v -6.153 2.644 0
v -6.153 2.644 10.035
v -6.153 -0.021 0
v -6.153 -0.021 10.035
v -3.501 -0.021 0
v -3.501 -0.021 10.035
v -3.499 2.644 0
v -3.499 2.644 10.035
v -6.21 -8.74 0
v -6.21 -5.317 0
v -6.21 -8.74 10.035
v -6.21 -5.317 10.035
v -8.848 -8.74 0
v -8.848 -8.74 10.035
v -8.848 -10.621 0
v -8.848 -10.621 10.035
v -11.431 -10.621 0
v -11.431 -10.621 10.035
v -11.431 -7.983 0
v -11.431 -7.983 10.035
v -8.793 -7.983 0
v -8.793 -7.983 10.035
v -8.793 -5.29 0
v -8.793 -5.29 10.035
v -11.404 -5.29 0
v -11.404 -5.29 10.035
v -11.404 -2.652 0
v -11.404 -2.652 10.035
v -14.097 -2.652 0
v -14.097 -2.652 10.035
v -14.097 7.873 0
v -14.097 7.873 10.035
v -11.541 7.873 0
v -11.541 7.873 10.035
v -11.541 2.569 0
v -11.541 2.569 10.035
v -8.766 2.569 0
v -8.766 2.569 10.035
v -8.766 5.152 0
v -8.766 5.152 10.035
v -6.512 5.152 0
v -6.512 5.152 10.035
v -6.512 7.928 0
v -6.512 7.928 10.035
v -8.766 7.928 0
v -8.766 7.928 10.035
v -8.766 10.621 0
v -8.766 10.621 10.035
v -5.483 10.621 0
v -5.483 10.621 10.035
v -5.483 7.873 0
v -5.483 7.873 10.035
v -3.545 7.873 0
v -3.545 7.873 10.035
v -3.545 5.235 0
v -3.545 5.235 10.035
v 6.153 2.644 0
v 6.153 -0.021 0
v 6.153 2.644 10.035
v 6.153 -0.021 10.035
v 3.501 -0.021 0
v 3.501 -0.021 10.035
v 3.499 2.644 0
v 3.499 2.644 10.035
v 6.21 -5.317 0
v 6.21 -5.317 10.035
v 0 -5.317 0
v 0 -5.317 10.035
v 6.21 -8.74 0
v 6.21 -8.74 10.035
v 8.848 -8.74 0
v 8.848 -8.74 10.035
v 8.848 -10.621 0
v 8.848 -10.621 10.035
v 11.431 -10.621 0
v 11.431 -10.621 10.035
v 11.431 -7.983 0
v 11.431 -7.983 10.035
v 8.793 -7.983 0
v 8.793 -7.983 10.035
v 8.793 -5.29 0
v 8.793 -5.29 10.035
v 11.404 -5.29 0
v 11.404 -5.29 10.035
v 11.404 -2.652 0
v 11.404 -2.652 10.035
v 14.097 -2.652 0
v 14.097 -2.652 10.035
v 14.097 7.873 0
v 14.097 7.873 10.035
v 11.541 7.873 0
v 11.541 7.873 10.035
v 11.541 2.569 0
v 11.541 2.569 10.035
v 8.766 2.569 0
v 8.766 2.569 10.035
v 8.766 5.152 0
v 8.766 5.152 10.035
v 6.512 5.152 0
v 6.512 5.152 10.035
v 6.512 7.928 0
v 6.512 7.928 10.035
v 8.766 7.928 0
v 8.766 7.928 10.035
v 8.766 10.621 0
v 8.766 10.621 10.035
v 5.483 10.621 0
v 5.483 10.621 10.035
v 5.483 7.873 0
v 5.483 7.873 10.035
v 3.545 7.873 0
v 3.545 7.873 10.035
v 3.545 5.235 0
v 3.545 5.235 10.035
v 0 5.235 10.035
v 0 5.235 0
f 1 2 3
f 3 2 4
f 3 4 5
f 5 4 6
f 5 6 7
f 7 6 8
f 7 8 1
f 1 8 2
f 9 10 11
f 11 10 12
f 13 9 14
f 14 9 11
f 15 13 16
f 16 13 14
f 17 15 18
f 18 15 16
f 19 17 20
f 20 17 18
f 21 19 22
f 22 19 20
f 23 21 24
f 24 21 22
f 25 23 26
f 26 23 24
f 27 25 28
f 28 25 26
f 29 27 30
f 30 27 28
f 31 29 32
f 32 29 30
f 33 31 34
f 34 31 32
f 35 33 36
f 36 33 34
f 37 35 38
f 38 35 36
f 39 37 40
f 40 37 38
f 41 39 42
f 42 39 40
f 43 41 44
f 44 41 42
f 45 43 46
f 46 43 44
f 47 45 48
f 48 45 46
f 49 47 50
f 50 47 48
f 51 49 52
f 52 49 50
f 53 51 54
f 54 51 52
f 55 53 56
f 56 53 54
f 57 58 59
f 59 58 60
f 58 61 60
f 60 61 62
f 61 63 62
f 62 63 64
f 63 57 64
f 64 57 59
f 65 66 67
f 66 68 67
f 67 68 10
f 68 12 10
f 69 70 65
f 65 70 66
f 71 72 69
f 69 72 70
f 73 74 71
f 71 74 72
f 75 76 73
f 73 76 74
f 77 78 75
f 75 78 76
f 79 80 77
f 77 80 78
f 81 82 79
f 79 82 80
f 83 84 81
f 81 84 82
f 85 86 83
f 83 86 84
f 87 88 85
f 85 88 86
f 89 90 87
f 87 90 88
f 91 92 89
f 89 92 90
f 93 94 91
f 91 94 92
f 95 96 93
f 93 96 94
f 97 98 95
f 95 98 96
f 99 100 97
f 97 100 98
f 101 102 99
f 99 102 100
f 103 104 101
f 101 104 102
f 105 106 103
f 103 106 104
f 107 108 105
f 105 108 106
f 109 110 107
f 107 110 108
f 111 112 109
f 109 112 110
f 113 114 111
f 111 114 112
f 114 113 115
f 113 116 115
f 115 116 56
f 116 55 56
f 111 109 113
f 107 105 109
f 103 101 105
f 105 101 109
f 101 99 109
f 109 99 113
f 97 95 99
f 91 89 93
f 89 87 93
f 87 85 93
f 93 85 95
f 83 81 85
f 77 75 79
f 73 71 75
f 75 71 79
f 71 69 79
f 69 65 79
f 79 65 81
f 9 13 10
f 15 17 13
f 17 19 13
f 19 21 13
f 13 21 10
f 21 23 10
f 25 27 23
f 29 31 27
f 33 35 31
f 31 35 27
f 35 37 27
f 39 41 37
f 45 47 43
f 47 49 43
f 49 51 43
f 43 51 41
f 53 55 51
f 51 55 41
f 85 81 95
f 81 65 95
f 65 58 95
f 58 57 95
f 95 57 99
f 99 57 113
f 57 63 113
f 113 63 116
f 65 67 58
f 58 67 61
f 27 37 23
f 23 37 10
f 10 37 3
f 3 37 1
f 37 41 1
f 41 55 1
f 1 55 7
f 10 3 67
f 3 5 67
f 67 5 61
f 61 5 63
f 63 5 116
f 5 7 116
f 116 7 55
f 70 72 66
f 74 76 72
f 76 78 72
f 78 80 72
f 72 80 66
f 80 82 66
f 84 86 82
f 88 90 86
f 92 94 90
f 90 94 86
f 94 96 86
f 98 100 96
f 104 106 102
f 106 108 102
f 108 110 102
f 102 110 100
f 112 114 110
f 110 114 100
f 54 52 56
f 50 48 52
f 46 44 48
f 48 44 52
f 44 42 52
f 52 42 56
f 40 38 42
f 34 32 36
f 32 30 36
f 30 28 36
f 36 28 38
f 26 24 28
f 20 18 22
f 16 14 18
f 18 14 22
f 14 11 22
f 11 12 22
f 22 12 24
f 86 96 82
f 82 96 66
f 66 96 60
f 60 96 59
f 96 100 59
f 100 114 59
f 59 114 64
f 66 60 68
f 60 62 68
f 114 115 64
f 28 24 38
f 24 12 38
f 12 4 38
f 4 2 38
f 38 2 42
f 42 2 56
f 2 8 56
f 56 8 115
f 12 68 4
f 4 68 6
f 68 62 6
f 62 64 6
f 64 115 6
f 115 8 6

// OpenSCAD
module invaders_v2_2b()
{
	polyhedron(
		points=[
			[-6.153152, 2.644155, 1.037121e-05],
			[-6.153152, 2.644155, 10.03545],
			[-6.153152, -0.02136326, 1.037121e-05],
			[-6.153152, -0.02136326, 1.037121e-05],
			[-6.153152, 2.644155, 10.03545],
			[-6.153152, -0.02136326, 10.03545],
			[-6.153152, -0.02136326, 1.037121e-05],
			[-6.153152, -0.02136326, 10.03545],
			[-3.500525, -0.02136326, 1.037121e-05],
			[-3.500525, -0.02136326, 1.037121e-05],
			[-6.153152, -0.02136326, 10.03545],
			[-3.500525, -0.02136326, 10.03545],
			[-3.500525, -0.02136326, 1.037121e-05],
			[-3.500525, -0.02136326, 10.03545],
			[-3.499426, 2.644155, 0.0],
			[-3.499426, 2.644155, 0.0],
			[-3.500525, -0.02136326, 10.03545],
			[-3.499426, 2.644155, 10.03545],
			[-3.499426, 2.644155, 0.0],
			[-3.499426, 2.644155, 10.03545],
			[-6.153152, 2.644155, 1.037121e-05],
			[-6.153152, 2.644155, 1.037121e-05],
			[-3.499426, 2.644155, 10.03545],
			[-6.153152, 2.644155, 10.03545],
			[-6.210196, -8.740329, 5.125999e-06],
			[-6.210196, -5.317132, 5.125999e-06],
			[-6.210196, -8.740329, 10.03545],
			[-6.210196, -8.740329, 10.03545],
			[-6.210196, -5.317132, 5.125999e-06],
			[-6.210196, -5.317132, 10.03545],
			[-8.848155, -8.740329, 5.125999e-06],
			[-6.210196, -8.740329, 5.125999e-06],
			[-8.848155, -8.740329, 10.03545],
			[-8.848155, -8.740329, 10.03545],
			[-6.210196, -8.740329, 5.125999e-06],
			[-6.210196, -8.740329, 10.03545],
			[-8.848155, -10.62053, 5.125999e-06],
			[-8.848155, -8.740329, 5.125999e-06],
			[-8.848155, -10.62053, 10.03545],
			[-8.848155, -10.62053, 10.03545],
			[-8.848155, -8.740329, 5.125999e-06],
			[-8.848155, -8.740329, 10.03545],
			[-11.43115, -10.62053, 5.125999e-06],
			[-8.848155, -10.62053, 5.125999e-06],
			[-11.43115, -10.62053, 10.03545],
			[-11.43115, -10.62053, 10.03545],
			[-8.848155, -10.62053, 5.125999e-06],
			[-8.848155, -10.62053, 10.03545],
			[-11.43115, -7.982572, 5.125999e-06],
			[-11.43115, -10.62053, 5.125999e-06],
			[-11.43115, -7.982572, 10.03545],
			[-11.43115, -7.982572, 10.03545],
			[-11.43115, -10.62053, 5.125999e-06],
			[-11.43115, -10.62053, 10.03545],
			[-8.793198, -7.982572, 5.125999e-06],
			[-11.43115, -7.982572, 5.125999e-06],
			[-8.793198, -7.982572, 10.03545],
			[-8.793198, -7.982572, 10.03545],
			[-11.43115, -7.982572, 5.125999e-06],
			[-11.43115, -7.982572, 10.03545],
			[-8.793198, -5.289653, 5.125999e-06],
			[-8.793198, -7.982572, 5.125999e-06],
			[-8.793198, -5.289653, 10.03545],
			[-8.793198, -5.289653, 10.03545],
			[-8.793198, -7.982572, 5.125999e-06],
			[-8.793198, -7.982572, 10.03545],
			[-11.40368, -5.289653, 5.125999e-06],
			[-8.793198, -5.289653, 5.125999e-06],
			[-11.40368, -5.289653, 10.03545],
			[-11.40368, -5.289653, 10.03545],
			[-8.793198, -5.289653, 5.125999e-06],
			[-8.793198, -5.289653, 10.03545],
			[-11.40368, -2.651692, 5.125999e-06],
			[-11.40368, -5.289653, 5.125999e-06],
			[-11.40368, -2.651692, 10.03545],
			[-11.40368, -2.651692, 10.03545],
			[-11.40368, -5.289653, 5.125999e-06],
			[-11.40368, -5.289653, 10.03545],
			[-14.09659, -2.651692, 5.125999e-06],
			[-11.40368, -2.651692, 5.125999e-06],
			[-14.09659, -2.651692, 10.03545],
			[-14.09659, -2.651692, 10.03545],
			[-11.40368, -2.651692, 5.125999e-06],
			[-11.40368, -2.651692, 10.03545],
			[-14.09659, 7.872661, 5.125999e-06],
			[-14.09659, -2.651692, 5.125999e-06],
			[-14.09659, 7.872661, 10.03545],
			[-14.09659, 7.872661, 10.03545],
			[-14.09659, -2.651692, 5.125999e-06],
			[-14.09659, -2.651692, 10.03545],
			[-11.54107, 7.872661, 5.125999e-06],
			[-14.09659, 7.872661, 5.125999e-06],
			[-11.54107, 7.872661, 10.03545],
			[-11.54107, 7.872661, 10.03545],
			[-14.09659, 7.872661, 5.125999e-06],
			[-14.09659, 7.872661, 10.03545],
			[-11.54107, 2.569268, 5.125999e-06],
			[-11.54107, 7.872661, 5.125999e-06],
			[-11.54107, 2.569268, 10.03545],
			[-11.54107, 2.569268, 10.03545],
			[-11.54107, 7.872661, 5.125999e-06],
			[-11.54107, 7.872661, 10.03545],
			[-8.765718, 2.569268, 5.125999e-06],
			[-11.54107, 2.569268, 5.125999e-06],
			[-8.765718, 2.569268, 10.03545],
			[-8.765718, 2.569268, 10.03545],
			[-11.54107, 2.569268, 5.125999e-06],
			[-11.54107, 2.569268, 10.03545],
			[-8.765718, 5.152268, 5.125999e-06],
			[-8.765718, 2.569268, 5.125999e-06],
			[-8.765718, 5.152268, 10.03545],
			[-8.765718, 5.152268, 10.03545],
			[-8.765718, 2.569268, 5.125999e-06],
			[-8.765718, 2.569268, 10.03545],
			[-6.512463, 5.152268, 5.125999e-06],
			[-8.765718, 5.152268, 5.125999e-06],
			[-6.512463, 5.152268, 10.03545],
			[-6.512463, 5.152268, 10.03545],
			[-8.765718, 5.152268, 5.125999e-06],
			[-8.765718, 5.152268, 10.03545],
			[-6.512463, 7.927623, 5.125999e-06],
			[-6.512463, 5.152268, 5.125999e-06],
			[-6.512463, 7.927623, 10.03545],
			[-6.512463, 7.927623, 10.03545],
			[-6.512463, 5.152268, 5.125999e-06],
			[-6.512463, 5.152268, 10.03545],
			[-8.765718, 7.927623, 5.125999e-06],
			[-6.512463, 7.927623, 5.125999e-06],
			[-8.765718, 7.927623, 10.03545],
			[-8.765718, 7.927623, 10.03545],
			[-6.512463, 7.927623, 5.125999e-06],
			[-6.512463, 7.927623, 10.03545],
			[-8.765718, 10.62053, 5.125999e-06],
			[-8.765718, 7.927623, 5.125999e-06],
			[-8.765718, 10.62053, 10.03545],
			[-8.765718, 10.62053, 10.03545],
			[-8.765718, 7.927623, 5.125999e-06],
			[-8.765718, 7.927623, 10.03545],
			[-5.482523, 10.62053, 5.125999e-06],
			[-8.765718, 10.62053, 5.125999e-06],
			[-5.482523, 10.62053, 10.03545],
			[-5.482523, 10.62053, 10.03545],
			[-8.765718, 10.62053, 5.125999e-06],
			[-8.765718, 10.62053, 10.03545],
			[-5.482523, 7.872661, 5.125999e-06],
			[-5.482523, 10.62053, 5.125999e-06],
			[-5.482523, 7.872661, 10.03545],
			[-5.482523, 7.872661, 10.03545],
			[-5.482523, 10.62053, 5.125999e-06],
			[-5.482523, 10.62053, 10.03545],
			[-3.544758, 7.872661, 5.125999e-06],
			[-5.482523, 7.872661, 5.125999e-06],
			[-3.544758, 7.872661, 10.03545],
			[-3.544758, 7.872661, 10.03545],
			[-5.482523, 7.872661, 5.125999e-06],
			[-5.482523, 7.872661, 10.03545],
			[-3.544758, 5.234704, 5.125999e-06],
			[-3.544758, 7.872661, 5.125999e-06],
			[-3.544758, 5.234704, 10.03545],
			[-3.544758, 5.234704, 10.03545],
			[-3.544758, 7.872661, 5.125999e-06],
			[-3.544758, 7.872661, 10.03545],
			[6.15315, 2.644155, 1.549721e-05],
			[6.15315, -0.02136326, 1.549721e-05],
			[6.15315, 2.644155, 10.03546],
			[6.15315, 2.644155, 10.03546],
			[6.15315, -0.02136326, 1.549721e-05],
			[6.15315, -0.02136326, 10.03546],
			[6.15315, -0.02136326, 1.549721e-05],
			[3.500523, -0.02136326, 1.549721e-05],
			[6.15315, -0.02136326, 10.03546],
			[6.15315, -0.02136326, 10.03546],
			[3.500523, -0.02136326, 1.549721e-05],
			[3.500523, -0.02136326, 10.03545],
			[3.500523, -0.02136326, 1.549721e-05],
			[3.499424, 2.644155, 5.125999e-06],
			[3.500523, -0.02136326, 10.03545],
			[3.500523, -0.02136326, 10.03545],
			[3.499424, 2.644155, 5.125999e-06],
			[3.499424, 2.644155, 10.03545],
			[3.499424, 2.644155, 5.125999e-06],
			[6.15315, 2.644155, 1.549721e-05],
			[3.499424, 2.644155, 10.03545],
			[3.499424, 2.644155, 10.03545],
			[6.15315, 2.644155, 1.549721e-05],
			[6.15315, 2.644155, 10.03546],
			[6.210193, -5.317132, 1.037121e-05],
			[6.210193, -5.317132, 10.03546],
			[-1.907349e-06, -5.317132, 5.125999e-06],
			[6.210193, -5.317132, 10.03546],
			[-1.907349e-06, -5.317132, 10.03545],
			[-1.907349e-06, -5.317132, 5.125999e-06],
			[-1.907349e-06, -5.317132, 5.125999e-06],
			[-1.907349e-06, -5.317132, 10.03545],
			[-6.210196, -5.317132, 5.125999e-06],
			[-1.907349e-06, -5.317132, 10.03545],
			[-6.210196, -5.317132, 10.03545],
			[-6.210196, -5.317132, 5.125999e-06],
			[6.210193, -8.740329, 1.037121e-05],
			[6.210193, -8.740329, 10.03546],
			[6.210193, -5.317132, 1.037121e-05],
			[6.210193, -5.317132, 1.037121e-05],
			[6.210193, -8.740329, 10.03546],
			[6.210193, -5.317132, 10.03546],
			[8.848153, -8.740329, 1.037121e-05],
			[8.848153, -8.740329, 10.03546],
			[6.210193, -8.740329, 1.037121e-05],
			[6.210193, -8.740329, 1.037121e-05],
			[8.848153, -8.740329, 10.03546],
			[6.210193, -8.740329, 10.03546],
			[8.848153, -10.62053, 1.037121e-05],
			[8.848153, -10.62053, 10.03546],
			[8.848153, -8.740329, 1.037121e-05],
			[8.848153, -8.740329, 1.037121e-05],
			[8.848153, -10.62053, 10.03546],
			[8.848153, -8.740329, 10.03546],
			[11.43115, -10.62053, 1.037121e-05],
			[11.43115, -10.62053, 10.03546],
			[8.848153, -10.62053, 1.037121e-05],
			[8.848153, -10.62053, 1.037121e-05],
			[11.43115, -10.62053, 10.03546],
			[8.848153, -10.62053, 10.03546],
			[11.43115, -7.982572, 1.037121e-05],
			[11.43115, -7.982572, 10.03546],
			[11.43115, -10.62053, 1.037121e-05],
			[11.43115, -10.62053, 1.037121e-05],
			[11.43115, -7.982572, 10.03546],
			[11.43115, -10.62053, 10.03546],
			[8.793196, -7.982572, 1.037121e-05],
			[8.793196, -7.982572, 10.03546],
			[11.43115, -7.982572, 1.037121e-05],
			[11.43115, -7.982572, 1.037121e-05],
			[8.793196, -7.982572, 10.03546],
			[11.43115, -7.982572, 10.03546],
			[8.793196, -5.289653, 1.037121e-05],
			[8.793196, -5.289653, 10.03546],
			[8.793196, -7.982572, 1.037121e-05],
			[8.793196, -7.982572, 1.037121e-05],
			[8.793196, -5.289653, 10.03546],
			[8.793196, -7.982572, 10.03546],
			[11.40367, -5.289653, 1.037121e-05],
			[11.40367, -5.289653, 10.03546],
			[8.793196, -5.289653, 1.037121e-05],
			[8.793196, -5.289653, 1.037121e-05],
			[11.40367, -5.289653, 10.03546],
			[8.793196, -5.289653, 10.03546],
			[11.40367, -2.651692, 1.037121e-05],
			[11.40367, -2.651692, 10.03546],
			[11.40367, -5.289653, 1.037121e-05],
			[11.40367, -5.289653, 1.037121e-05],
			[11.40367, -2.651692, 10.03546],
			[11.40367, -5.289653, 10.03546],
			[14.09659, -2.651692, 1.037121e-05],
			[14.09659, -2.651692, 10.03546],
			[11.40367, -2.651692, 1.037121e-05],
			[11.40367, -2.651692, 1.037121e-05],
			[14.09659, -2.651692, 10.03546],
			[11.40367, -2.651692, 10.03546],
			[14.09659, 7.872661, 1.037121e-05],
			[14.09659, 7.872661, 10.03546],
			[14.09659, -2.651692, 1.037121e-05],
			[14.09659, -2.651692, 1.037121e-05],
			[14.09659, 7.872661, 10.03546],
			[14.09659, -2.651692, 10.03546],
			[11.54107, 7.872661, 1.037121e-05],
			[11.54107, 7.872661, 10.03546],
			[14.09659, 7.872661, 1.037121e-05],
			[14.09659, 7.872661, 1.037121e-05],
			[11.54107, 7.872661, 10.03546],
			[14.09659, 7.872661, 10.03546],
			[11.54107, 2.569268, 1.037121e-05],
			[11.54107, 2.569268, 10.03546],
			[11.54107, 7.872661, 1.037121e-05],
			[11.54107, 7.872661, 1.037121e-05],
			[11.54107, 2.569268, 10.03546],
			[11.54107, 7.872661, 10.03546],
			[8.765716, 2.569268, 1.037121e-05],
			[8.765716, 2.569268, 10.03546],
			[11.54107, 2.569268, 1.037121e-05],
			[11.54107, 2.569268, 1.037121e-05],
			[8.765716, 2.569268, 10.03546],
			[11.54107, 2.569268, 10.03546],
			[8.765716, 5.152268, 1.037121e-05],
			[8.765716, 5.152268, 10.03546],
			[8.765716, 2.569268, 1.037121e-05],
			[8.765716, 2.569268, 1.037121e-05],
			[8.765716, 5.152268, 10.03546],
			[8.765716, 2.569268, 10.03546],
			[6.512461, 5.152268, 1.037121e-05],
			[6.512461, 5.152268, 10.03546],
			[8.765716, 5.152268, 1.037121e-05],
			[8.765716, 5.152268, 1.037121e-05],
			[6.512461, 5.152268, 10.03546],
			[8.765716, 5.152268, 10.03546],
			[6.512461, 7.927623, 1.037121e-05],
			[6.512461, 7.927623, 10.03546],
			[6.512461, 5.152268, 1.037121e-05],
			[6.512461, 5.152268, 1.037121e-05],
			[6.512461, 7.927623, 10.03546],
			[6.512461, 5.152268, 10.03546],
			[8.765716, 7.927623, 1.037121e-05],
			[8.765716, 7.927623, 10.03546],
			[6.512461, 7.927623, 1.037121e-05],
			[6.512461, 7.927623, 1.037121e-05],
			[8.765716, 7.927623, 10.03546],
			[6.512461, 7.927623, 10.03546],
			[8.765716, 10.62053, 1.037121e-05],
			[8.765716, 10.62053, 10.03546],
			[8.765716, 7.927623, 1.037121e-05],
			[8.765716, 7.927623, 1.037121e-05],
			[8.765716, 10.62053, 10.03546],
			[8.765716, 7.927623, 10.03546],
			[5.482523, 10.62053, 1.037121e-05],
			[5.482523, 10.62053, 10.03546],
			[8.765716, 10.62053, 1.037121e-05],
			[8.765716, 10.62053, 1.037121e-05],
			[5.482523, 10.62053, 10.03546],
			[8.765716, 10.62053, 10.03546],
			[5.482523, 7.872661, 1.037121e-05],
			[5.482523, 7.872661, 10.03546],
			[5.482523, 10.62053, 1.037121e-05],
			[5.482523, 10.62053, 1.037121e-05],
			[5.482523, 7.872661, 10.03546],
			[5.482523, 10.62053, 10.03546],
			[3.544758, 7.872661, 1.037121e-05],
			[3.544758, 7.872661, 10.03545],
			[5.482523, 7.872661, 1.037121e-05],
			[5.482523, 7.872661, 1.037121e-05],
			[3.544758, 7.872661, 10.03545],
			[5.482523, 7.872661, 10.03546],
			[3.544758, 5.234704, 1.037121e-05],
			[3.544758, 5.234704, 10.03545],
			[3.544758, 7.872661, 1.037121e-05],
			[3.544758, 7.872661, 1.037121e-05],
			[3.544758, 5.234704, 10.03545],
			[3.544758, 7.872661, 10.03545],
			[3.544758, 5.234704, 10.03545],
			[3.544758, 5.234704, 1.037121e-05],
			[-1.907349e-06, 5.234704, 10.03545],
			[3.544758, 5.234704, 1.037121e-05],
			[-1.907349e-06, 5.234704, 5.125999e-06],
			[-1.907349e-06, 5.234704, 10.03545],
			[-1.907349e-06, 5.234704, 10.03545],
			[-1.907349e-06, 5.234704, 5.125999e-06],
			[-3.544758, 5.234704, 10.03545],
			[-1.907349e-06, 5.234704, 5.125999e-06],
			[-3.544758, 5.234704, 5.125999e-06],
			[-3.544758, 5.234704, 10.03545],
			[3.544758, 7.872661, 1.037121e-05],
			[5.482523, 7.872661, 1.037121e-05],
			[3.544758, 5.234704, 1.037121e-05],
			[5.482523, 10.62053, 1.037121e-05],
			[8.765716, 10.62053, 1.037121e-05],
			[5.482523, 7.872661, 1.037121e-05],
			[8.765716, 7.927623, 1.037121e-05],
			[6.512461, 7.927623, 1.037121e-05],
			[8.765716, 10.62053, 1.037121e-05],
			[8.765716, 10.62053, 1.037121e-05],
			[6.512461, 7.927623, 1.037121e-05],
			[5.482523, 7.872661, 1.037121e-05],
			[6.512461, 7.927623, 1.037121e-05],
			[6.512461, 5.152268, 1.037121e-05],
			[5.482523, 7.872661, 1.037121e-05],
			[5.482523, 7.872661, 1.037121e-05],
			[6.512461, 5.152268, 1.037121e-05],
			[3.544758, 5.234704, 1.037121e-05],
			[8.765716, 5.152268, 1.037121e-05],
			[8.765716, 2.569268, 1.037121e-05],
			[6.512461, 5.152268, 1.037121e-05],
			[11.54107, 7.872661, 1.037121e-05],
			[14.09659, 7.872661, 1.037121e-05],
			[11.54107, 2.569268, 1.037121e-05],
			[14.09659, 7.872661, 1.037121e-05],
			[14.09659, -2.651692, 1.037121e-05],
			[11.54107, 2.569268, 1.037121e-05],
			[14.09659, -2.651692, 1.037121e-05],
			[11.40367, -2.651692, 1.037121e-05],
			[11.54107, 2.569268, 1.037121e-05],
			[11.54107, 2.569268, 1.037121e-05],
			[11.40367, -2.651692, 1.037121e-05],
			[8.765716, 2.569268, 1.037121e-05],
			[11.40367, -5.289653, 1.037121e-05],
			[8.793196, -5.289653, 1.037121e-05],
			[11.40367, -2.651692, 1.037121e-05],
			[11.43115, -7.982572, 1.037121e-05],
			[11.43115, -10.62053, 1.037121e-05],
			[8.793196, -7.982572, 1.037121e-05],
			[8.848153, -10.62053, 1.037121e-05],
			[8.848153, -8.740329, 1.037121e-05],
			[11.43115, -10.62053, 1.037121e-05],
			[11.43115, -10.62053, 1.037121e-05],
			[8.848153, -8.740329, 1.037121e-05],
			[8.793196, -7.982572, 1.037121e-05],
			[8.848153, -8.740329, 1.037121e-05],
			[6.210193, -8.740329, 1.037121e-05],
			[8.793196, -7.982572, 1.037121e-05],
			[6.210193, -8.740329, 1.037121e-05],
			[6.210193, -5.317132, 1.037121e-05],
			[8.793196, -7.982572, 1.037121e-05],
			[8.793196, -7.982572, 1.037121e-05],
			[6.210193, -5.317132, 1.037121e-05],
			[8.793196, -5.289653, 1.037121e-05],
			[-6.210196, -8.740329, 5.125999e-06],
			[-8.848155, -8.740329, 5.125999e-06],
			[-6.210196, -5.317132, 5.125999e-06],
			[-8.848155, -10.62053, 5.125999e-06],
			[-11.43115, -10.62053, 5.125999e-06],
			[-8.848155, -8.740329, 5.125999e-06],
			[-11.43115, -10.62053, 5.125999e-06],
			[-11.43115, -7.982572, 5.125999e-06],
			[-8.848155, -8.740329, 5.125999e-06],
			[-11.43115, -7.982572, 5.125999e-06],
			[-8.793198, -7.982572, 5.125999e-06],
			[-8.848155, -8.740329, 5.125999e-06],
			[-8.848155, -8.740329, 5.125999e-06],
			[-8.793198, -7.982572, 5.125999e-06],
			[-6.210196, -5.317132, 5.125999e-06],
			[-8.793198, -7.982572, 5.125999e-06],
			[-8.793198, -5.289653, 5.125999e-06],
			[-6.210196, -5.317132, 5.125999e-06],
			[-11.40368, -5.289653, 5.125999e-06],
			[-11.40368, -2.651692, 5.125999e-06],
			[-8.793198, -5.289653, 5.125999e-06],
			[-14.09659, -2.651692, 5.125999e-06],
			[-14.09659, 7.872661, 5.125999e-06],
			[-11.40368, -2.651692, 5.125999e-06],
			[-11.54107, 7.872661, 5.125999e-06],
			[-11.54107, 2.569268, 5.125999e-06],
			[-14.09659, 7.872661, 5.125999e-06],
			[-14.09659, 7.872661, 5.125999e-06],
			[-11.54107, 2.569268, 5.125999e-06],
			[-11.40368, -2.651692, 5.125999e-06],
			[-11.54107, 2.569268, 5.125999e-06],
			[-8.765718, 2.569268, 5.125999e-06],
			[-11.40368, -2.651692, 5.125999e-06],
			[-8.765718, 5.152268, 5.125999e-06],
			[-6.512463, 5.152268, 5.125999e-06],
			[-8.765718, 2.569268, 5.125999e-06],
			[-8.765718, 7.927623, 5.125999e-06],
			[-8.765718, 10.62053, 5.125999e-06],
			[-6.512463, 7.927623, 5.125999e-06],
			[-8.765718, 10.62053, 5.125999e-06],
			[-5.482523, 10.62053, 5.125999e-06],
			[-6.512463, 7.927623, 5.125999e-06],
			[-5.482523, 10.62053, 5.125999e-06],
			[-5.482523, 7.872661, 5.125999e-06],
			[-6.512463, 7.927623, 5.125999e-06],
			[-6.512463, 7.927623, 5.125999e-06],
			[-5.482523, 7.872661, 5.125999e-06],
			[-6.512463, 5.152268, 5.125999e-06],
			[-3.544758, 7.872661, 5.125999e-06],
			[-3.544758, 5.234704, 5.125999e-06],
			[-5.482523, 7.872661, 5.125999e-06],
			[-5.482523, 7.872661, 5.125999e-06],
			[-3.544758, 5.234704, 5.125999e-06],
			[-6.512463, 5.152268, 5.125999e-06],
			[11.40367, -2.651692, 1.037121e-05],
			[8.793196, -5.289653, 1.037121e-05],
			[8.765716, 2.569268, 1.037121e-05],
			[8.793196, -5.289653, 1.037121e-05],
			[6.210193, -5.317132, 1.037121e-05],
			[8.765716, 2.569268, 1.037121e-05],
			[6.210193, -5.317132, 1.037121e-05],
			[6.15315, -0.02136326, 1.549721e-05],
			[8.765716, 2.569268, 1.037121e-05],
			[6.15315, -0.02136326, 1.549721e-05],
			[6.15315, 2.644155, 1.549721e-05],
			[8.765716, 2.569268, 1.037121e-05],
			[8.765716, 2.569268, 1.037121e-05],
			[6.15315, 2.644155, 1.549721e-05],
			[6.512461, 5.152268, 1.037121e-05],
			[6.512461, 5.152268, 1.037121e-05],
			[6.15315, 2.644155, 1.549721e-05],
			[3.544758, 5.234704, 1.037121e-05],
			[6.15315, 2.644155, 1.549721e-05],
			[3.499424, 2.644155, 5.125999e-06],
			[3.544758, 5.234704, 1.037121e-05],
			[3.544758, 5.234704, 1.037121e-05],
			[3.499424, 2.644155, 5.125999e-06],
			[-1.907349e-06, 5.234704, 5.125999e-06],
			[6.210193, -5.317132, 1.037121e-05],
			[-1.907349e-06, -5.317132, 5.125999e-06],
			[6.15315, -0.02136326, 1.549721e-05],
			[6.15315, -0.02136326, 1.549721e-05],
			[-1.907349e-06, -5.317132, 5.125999e-06],
			[3.500523, -0.02136326, 1.549721e-05],
			[-11.40368, -2.651692, 5.125999e-06],
			[-8.765718, 2.569268, 5.125999e-06],
			[-8.793198, -5.289653, 5.125999e-06],
			[-8.793198, -5.289653, 5.125999e-06],
			[-8.765718, 2.569268, 5.125999e-06],
			[-6.210196, -5.317132, 5.125999e-06],
			[-6.210196, -5.317132, 5.125999e-06],
			[-8.765718, 2.569268, 5.125999e-06],
			[-6.153152, -0.02136326, 1.037121e-05],
			[-6.153152, -0.02136326, 1.037121e-05],
			[-8.765718, 2.569268, 5.125999e-06],
			[-6.153152, 2.644155, 1.037121e-05],
			[-8.765718, 2.569268, 5.125999e-06],
			[-6.512463, 5.152268, 5.125999e-06],
			[-6.153152, 2.644155, 1.037121e-05],
			[-6.512463, 5.152268, 5.125999e-06],
			[-3.544758, 5.234704, 5.125999e-06],
			[-6.153152, 2.644155, 1.037121e-05],
			[-6.153152, 2.644155, 1.037121e-05],
			[-3.544758, 5.234704, 5.125999e-06],
			[-3.499426, 2.644155, 0.0],
			[-6.210196, -5.317132, 5.125999e-06],
			[-6.153152, -0.02136326, 1.037121e-05],
			[-1.907349e-06, -5.317132, 5.125999e-06],
			[-6.153152, -0.02136326, 1.037121e-05],
			[-3.500525, -0.02136326, 1.037121e-05],
			[-1.907349e-06, -5.317132, 5.125999e-06],
			[-1.907349e-06, -5.317132, 5.125999e-06],
			[-3.500525, -0.02136326, 1.037121e-05],
			[3.500523, -0.02136326, 1.549721e-05],
			[3.500523, -0.02136326, 1.549721e-05],
			[-3.500525, -0.02136326, 1.037121e-05],
			[3.499424, 2.644155, 5.125999e-06],
			[3.499424, 2.644155, 5.125999e-06],
			[-3.500525, -0.02136326, 1.037121e-05],
			[-1.907349e-06, 5.234704, 5.125999e-06],
			[-3.500525, -0.02136326, 1.037121e-05],
			[-3.499426, 2.644155, 0.0],
			[-1.907349e-06, 5.234704, 5.125999e-06],
			[-1.907349e-06, 5.234704, 5.125999e-06],
			[-3.499426, 2.644155, 0.0],
			[-3.544758, 5.234704, 5.125999e-06],
			[6.210193, -8.740329, 10.03546],
			[8.848153, -8.740329, 10.03546],
			[6.210193, -5.317132, 10.03546],
			[8.848153, -10.62053, 10.03546],
			[11.43115, -10.62053, 10.03546],
			[8.848153, -8.740329, 10.03546],
			[11.43115, -10.62053, 10.03546],
			[11.43115, -7.982572, 10.03546],
			[8.848153, -8.740329, 10.03546],
			[11.43115, -7.982572, 10.03546],
			[8.793196, -7.982572, 10.03546],
			[8.848153, -8.740329, 10.03546],
			[8.848153, -8.740329, 10.03546],
			[8.793196, -7.982572, 10.03546],
			[6.210193, -5.317132, 10.03546],
			[8.793196, -7.982572, 10.03546],
			[8.793196, -5.289653, 10.03546],
			[6.210193, -5.317132, 10.03546],
			[11.40367, -5.289653, 10.03546],
			[11.40367, -2.651692, 10.03546],
			[8.793196, -5.289653, 10.03546],
			[14.09659, -2.651692, 10.03546],
			[14.09659, 7.872661, 10.03546],
			[11.40367, -2.651692, 10.03546],
			[11.54107, 7.872661, 10.03546],
			[11.54107, 2.569268, 10.03546],
			[14.09659, 7.872661, 10.03546],
			[14.09659, 7.872661, 10.03546],
			[11.54107, 2.569268, 10.03546],
			[11.40367, -2.651692, 10.03546],
			[11.54107, 2.569268, 10.03546],
			[8.765716, 2.569268, 10.03546],
			[11.40367, -2.651692, 10.03546],
			[8.765716, 5.152268, 10.03546],
			[6.512461, 5.152268, 10.03546],
			[8.765716, 2.569268, 10.03546],
			[8.765716, 7.927623, 10.03546],
			[8.765716, 10.62053, 10.03546],
			[6.512461, 7.927623, 10.03546],
			[8.765716, 10.62053, 10.03546],
			[5.482523, 10.62053, 10.03546],
			[6.512461, 7.927623, 10.03546],
			[5.482523, 10.62053, 10.03546],
			[5.482523, 7.872661, 10.03546],
			[6.512461, 7.927623, 10.03546],
			[6.512461, 7.927623, 10.03546],
			[5.482523, 7.872661, 10.03546],
			[6.512461, 5.152268, 10.03546],
			[3.544758, 7.872661, 10.03545],
			[3.544758, 5.234704, 10.03545],
			[5.482523, 7.872661, 10.03546],
			[5.482523, 7.872661, 10.03546],
			[3.544758, 5.234704, 10.03545],
			[6.512461, 5.152268, 10.03546],
			[-3.544758, 7.872661, 10.03545],
			[-5.482523, 7.872661, 10.03545],
			[-3.544758, 5.234704, 10.03545],
			[-5.482523, 10.62053, 10.03545],
			[-8.765718, 10.62053, 10.03545],
			[-5.482523, 7.872661, 10.03545],
			[-8.765718, 7.927623, 10.03545],
			[-6.512463, 7.927623, 10.03545],
			[-8.765718, 10.62053, 10.03545],
			[-8.765718, 10.62053, 10.03545],
			[-6.512463, 7.927623, 10.03545],
			[-5.482523, 7.872661, 10.03545],
			[-6.512463, 7.927623, 10.03545],
			[-6.512463, 5.152268, 10.03545],
			[-5.482523, 7.872661, 10.03545],
			[-5.482523, 7.872661, 10.03545],
			[-6.512463, 5.152268, 10.03545],
			[-3.544758, 5.234704, 10.03545],
			[-8.765718, 5.152268, 10.03545],
			[-8.765718, 2.569268, 10.03545],
			[-6.512463, 5.152268, 10.03545],
			[-11.54107, 7.872661, 10.03545],
			[-14.09659, 7.872661, 10.03545],
			[-11.54107, 2.569268, 10.03545],
			[-14.09659, 7.872661, 10.03545],
			[-14.09659, -2.651692, 10.03545],
			[-11.54107, 2.569268, 10.03545],
			[-14.09659, -2.651692, 10.03545],
			[-11.40368, -2.651692, 10.03545],
			[-11.54107, 2.569268, 10.03545],
			[-11.54107, 2.569268, 10.03545],
			[-11.40368, -2.651692, 10.03545],
			[-8.765718, 2.569268, 10.03545],
			[-11.40368, -5.289653, 10.03545],
			[-8.793198, -5.289653, 10.03545],
			[-11.40368, -2.651692, 10.03545],
			[-11.43115, -7.982572, 10.03545],
			[-11.43115, -10.62053, 10.03545],
			[-8.793198, -7.982572, 10.03545],
			[-8.848155, -10.62053, 10.03545],
			[-8.848155, -8.740329, 10.03545],
			[-11.43115, -10.62053, 10.03545],
			[-11.43115, -10.62053, 10.03545],
			[-8.848155, -8.740329, 10.03545],
			[-8.793198, -7.982572, 10.03545],
			[-8.848155, -8.740329, 10.03545],
			[-6.210196, -8.740329, 10.03545],
			[-8.793198, -7.982572, 10.03545],
			[-6.210196, -8.740329, 10.03545],
			[-6.210196, -5.317132, 10.03545],
			[-8.793198, -7.982572, 10.03545],
			[-8.793198, -7.982572, 10.03545],
			[-6.210196, -5.317132, 10.03545],
			[-8.793198, -5.289653, 10.03545],
			[11.40367, -2.651692, 10.03546],
			[8.765716, 2.569268, 10.03546],
			[8.793196, -5.289653, 10.03546],
			[8.793196, -5.289653, 10.03546],
			[8.765716, 2.569268, 10.03546],
			[6.210193, -5.317132, 10.03546],
			[6.210193, -5.317132, 10.03546],
			[8.765716, 2.569268, 10.03546],
			[6.15315, -0.02136326, 10.03546],
			[6.15315, -0.02136326, 10.03546],
			[8.765716, 2.569268, 10.03546],
			[6.15315, 2.644155, 10.03546],
			[8.765716, 2.569268, 10.03546],
			[6.512461, 5.152268, 10.03546],
			[6.15315, 2.644155, 10.03546],
			[6.512461, 5.152268, 10.03546],
			[3.544758, 5.234704, 10.03545],
			[6.15315, 2.644155, 10.03546],
			[6.15315, 2.644155, 10.03546],
			[3.544758, 5.234704, 10.03545],
			[3.499424, 2.644155, 10.03545],
			[6.210193, -5.317132, 10.03546],
			[6.15315, -0.02136326, 10.03546],
			[-1.907349e-06, -5.317132, 10.03545],
			[6.15315, -0.02136326, 10.03546],
			[3.500523, -0.02136326, 10.03545],
			[-1.907349e-06, -5.317132, 10.03545],
			[3.544758, 5.234704, 10.03545],
			[-1.907349e-06, 5.234704, 10.03545],
			[3.499424, 2.644155, 10.03545],
			[-11.40368, -2.651692, 10.03545],
			[-8.793198, -5.289653, 10.03545],
			[-8.765718, 2.569268, 10.03545],
			[-8.793198, -5.289653, 10.03545],
			[-6.210196, -5.317132, 10.03545],
			[-8.765718, 2.569268, 10.03545],
			[-6.210196, -5.317132, 10.03545],
			[-6.153152, -0.02136326, 10.03545],
			[-8.765718, 2.569268, 10.03545],
			[-6.153152, -0.02136326, 10.03545],
			[-6.153152, 2.644155, 10.03545],
			[-8.765718, 2.569268, 10.03545],
			[-8.765718, 2.569268, 10.03545],
			[-6.153152, 2.644155, 10.03545],
			[-6.512463, 5.152268, 10.03545],
			[-6.512463, 5.152268, 10.03545],
			[-6.153152, 2.644155, 10.03545],
			[-3.544758, 5.234704, 10.03545],
			[-6.153152, 2.644155, 10.03545],
			[-3.499426, 2.644155, 10.03545],
			[-3.544758, 5.234704, 10.03545],
			[-3.544758, 5.234704, 10.03545],
			[-3.499426, 2.644155, 10.03545],
			[-1.907349e-06, 5.234704, 10.03545],
			[-6.210196, -5.317132, 10.03545],
			[-1.907349e-06, -5.317132, 10.03545],
			[-6.153152, -0.02136326, 10.03545],
			[-6.153152, -0.02136326, 10.03545],
			[-1.907349e-06, -5.317132, 10.03545],
			[-3.500525, -0.02136326, 10.03545],
			[-1.907349e-06, -5.317132, 10.03545],
			[3.500523, -0.02136326, 10.03545],
			[-3.500525, -0.02136326, 10.03545],
			[3.500523, -0.02136326, 10.03545],
			[3.499424, 2.644155, 10.03545],
			[-3.500525, -0.02136326, 10.03545],
			[3.499424, 2.644155, 10.03545],
			[-1.907349e-06, 5.234704, 10.03545],
			[-3.500525, -0.02136326, 10.03545],
			[-1.907349e-06, 5.234704, 10.03545],
			[-3.499426, 2.644155, 10.03545],
			[-3.500525, -0.02136326, 10.03545]
		],
		faces=[
			[0, 1, 2],
			[3, 4, 5],
			[6, 7, 8],
			[9, 10, 11],
			[12, 13, 14],
			[15, 16, 17],
			[18, 19, 20],
			[21, 22, 23],
			[24, 25, 26],
			[27, 28, 29],
			[30, 31, 32],
			[33, 34, 35],
			[36, 37, 38],
			[39, 40, 41],
			[42, 43, 44],
			[45, 46, 47],
			[48, 49, 50],
			[51, 52, 53],
			[54, 55, 56],
			[57, 58, 59],
			[60, 61, 62],
			[63, 64, 65],
			[66, 67, 68],
			[69, 70, 71],
			[72, 73, 74],
			[75, 76, 77],
			[78, 79, 80],
			[81, 82, 83],
			[84, 85, 86],
			[87, 88, 89],
			[90, 91, 92],
			[93, 94, 95],
			[96, 97, 98],
			[99, 100, 101],
			[102, 103, 104],
			[105, 106, 107],
			[108, 109, 110],
			[111, 112, 113],
			[114, 115, 116],
			[117, 118, 119],
			[120, 121, 122],
			[123, 124, 125],
			[126, 127, 128],
			[129, 130, 131],
			[132, 133, 134],
			[135, 136, 137],
			[138, 139, 140],
			[141, 142, 143],
			[144, 145, 146],
			[147, 148, 149],
			[150, 151, 152],
			[153, 154, 155],
			[156, 157, 158],
			[159, 160, 161],
			[162, 163, 164],
			[165, 166, 167],
			[168, 169, 170],
			[171, 172, 173],
			[174, 175, 176],
			[177, 178, 179],
			[180, 181, 182],
			[183, 184, 185],
			[186, 187, 188],
			[189, 190, 191],
			[192, 193, 194],
			[195, 196, 197],
			[198, 199, 200],
			[201, 202, 203],
			[204, 205, 206],
			[207, 208, 209],
			[210, 211, 212],
			[213, 214, 215],
			[216, 217, 218],
			[219, 220, 221],
			[222, 223, 224],
			[225, 226, 227],
			[228, 229, 230],
			[231, 232, 233],
			[234, 235, 236],
			[237, 238, 239],
			[240, 241, 242],
			[243, 244, 245],
			[246, 247, 248],
			[249, 250, 251],
			[252, 253, 254],
			[255, 256, 257],
			[258, 259, 260],
			[261, 262, 263],
			[264, 265, 266],
			[267, 268, 269],
			[270, 271, 272],
			[273, 274, 275],
			[276, 277, 278],
			[279, 280, 281],
			[282, 283, 284],
			[285, 286, 287],
			[288, 289, 290],
			[291, 292, 293],
			[294, 295, 296],
			[297, 298, 299],
			[300, 301, 302],
			[303, 304, 305],
			[306, 307, 308],
			[309, 310, 311],
			[312, 313, 314],
			[315, 316, 317],
			[318, 319, 320],
			[321, 322, 323],
			[324, 325, 326],
			[327, 328, 329],
			[330, 331, 332],
			[333, 334, 335],
			[336, 337, 338],
			[339, 340, 341],
			[342, 343, 344],
			[345, 346, 347],
			[348, 349, 350],
			[351, 352, 353],
			[354, 355, 356],
			[357, 358, 359],
			[360, 361, 362],
			[363, 364, 365],
			[366, 367, 368],
			[369, 370, 371],
			[372, 373, 374],
			[375, 376, 377],
			[378, 379, 380],
			[381, 382, 383],
			[384, 385, 386],
			[387, 388, 389],
			[390, 391, 392],
			[393, 394, 395],
			[396, 397, 398],
			[399, 400, 401],
			[402, 403, 404],
			[405, 406, 407],
			[408, 409, 410],
			[411, 412, 413],
			[414, 415, 416],
			[417, 418, 419],
			[420, 421, 422],
			[423, 424, 425],
			[426, 427, 428],
			[429, 430, 431],
			[432, 433, 434],
			[435, 436, 437],
			[438, 439, 440],
			[441, 442, 443],
			[444, 445, 446],
			[447, 448, 449],
			[450, 451, 452],
			[453, 454, 455],
			[456, 457, 458],
			[459, 460, 461],
			[462, 463, 464],
			[465, 466, 467],
			[468, 469, 470],
			[471, 472, 473],
			[474, 475, 476],
			[477, 478, 479],
			[480, 481, 482],
			[483, 484, 485],
			[486, 487, 488],
			[489, 490, 491],
			[492, 493, 494],
			[495, 496, 497],
			[498, 499, 500],
			[501, 502, 503],
			[504, 505, 506],
			[507, 508, 509],
			[510, 511, 512],
			[513, 514, 515],
			[516, 517, 518],
			[519, 520, 521],
			[522, 523, 524],
			[525, 526, 527],
			[528, 529, 530],
			[531, 532, 533],
			[534, 535, 536],
			[537, 538, 539],
			[540, 541, 542],
			[543, 544, 545],
			[546, 547, 548],
			[549, 550, 551],
			[552, 553, 554],
			[555, 556, 557],
			[558, 559, 560],
			[561, 562, 563],
			[564, 565, 566],
			[567, 568, 569],
			[570, 571, 572],
			[573, 574, 575],
			[576, 577, 578],
			[579, 580, 581],
			[582, 583, 584],
			[585, 586, 587],
			[588, 589, 590],
			[591, 592, 593],
			[594, 595, 596],
			[597, 598, 599],
			[600, 601, 602],
			[603, 604, 605],
			[606, 607, 608],
			[609, 610, 611],
			[612, 613, 614],
			[615, 616, 617],
			[618, 619, 620],
			[621, 622, 623],
			[624, 625, 626],
			[627, 628, 629],
			[630, 631, 632],
			[633, 634, 635],
			[636, 637, 638],
			[639, 640, 641],
			[642, 643, 644],
			[645, 646, 647],
			[648, 649, 650],
			[651, 652, 653],
			[654, 655, 656],
			[657, 658, 659],
			[660, 661, 662],
			[663, 664, 665],
			[666, 667, 668],
			[669, 670, 671],
			[672, 673, 674],
			[675, 676, 677],
			[678, 679, 680],
			[681, 682, 683],
			[684, 685, 686],
			[687, 688, 689],
			[690, 691, 692],
			[693, 694, 695],
			[696, 697, 698],
			[699, 700, 701],
			[702, 703, 704],
			[705, 706, 707]
		]
	);
}

invaders_v2_2b();
